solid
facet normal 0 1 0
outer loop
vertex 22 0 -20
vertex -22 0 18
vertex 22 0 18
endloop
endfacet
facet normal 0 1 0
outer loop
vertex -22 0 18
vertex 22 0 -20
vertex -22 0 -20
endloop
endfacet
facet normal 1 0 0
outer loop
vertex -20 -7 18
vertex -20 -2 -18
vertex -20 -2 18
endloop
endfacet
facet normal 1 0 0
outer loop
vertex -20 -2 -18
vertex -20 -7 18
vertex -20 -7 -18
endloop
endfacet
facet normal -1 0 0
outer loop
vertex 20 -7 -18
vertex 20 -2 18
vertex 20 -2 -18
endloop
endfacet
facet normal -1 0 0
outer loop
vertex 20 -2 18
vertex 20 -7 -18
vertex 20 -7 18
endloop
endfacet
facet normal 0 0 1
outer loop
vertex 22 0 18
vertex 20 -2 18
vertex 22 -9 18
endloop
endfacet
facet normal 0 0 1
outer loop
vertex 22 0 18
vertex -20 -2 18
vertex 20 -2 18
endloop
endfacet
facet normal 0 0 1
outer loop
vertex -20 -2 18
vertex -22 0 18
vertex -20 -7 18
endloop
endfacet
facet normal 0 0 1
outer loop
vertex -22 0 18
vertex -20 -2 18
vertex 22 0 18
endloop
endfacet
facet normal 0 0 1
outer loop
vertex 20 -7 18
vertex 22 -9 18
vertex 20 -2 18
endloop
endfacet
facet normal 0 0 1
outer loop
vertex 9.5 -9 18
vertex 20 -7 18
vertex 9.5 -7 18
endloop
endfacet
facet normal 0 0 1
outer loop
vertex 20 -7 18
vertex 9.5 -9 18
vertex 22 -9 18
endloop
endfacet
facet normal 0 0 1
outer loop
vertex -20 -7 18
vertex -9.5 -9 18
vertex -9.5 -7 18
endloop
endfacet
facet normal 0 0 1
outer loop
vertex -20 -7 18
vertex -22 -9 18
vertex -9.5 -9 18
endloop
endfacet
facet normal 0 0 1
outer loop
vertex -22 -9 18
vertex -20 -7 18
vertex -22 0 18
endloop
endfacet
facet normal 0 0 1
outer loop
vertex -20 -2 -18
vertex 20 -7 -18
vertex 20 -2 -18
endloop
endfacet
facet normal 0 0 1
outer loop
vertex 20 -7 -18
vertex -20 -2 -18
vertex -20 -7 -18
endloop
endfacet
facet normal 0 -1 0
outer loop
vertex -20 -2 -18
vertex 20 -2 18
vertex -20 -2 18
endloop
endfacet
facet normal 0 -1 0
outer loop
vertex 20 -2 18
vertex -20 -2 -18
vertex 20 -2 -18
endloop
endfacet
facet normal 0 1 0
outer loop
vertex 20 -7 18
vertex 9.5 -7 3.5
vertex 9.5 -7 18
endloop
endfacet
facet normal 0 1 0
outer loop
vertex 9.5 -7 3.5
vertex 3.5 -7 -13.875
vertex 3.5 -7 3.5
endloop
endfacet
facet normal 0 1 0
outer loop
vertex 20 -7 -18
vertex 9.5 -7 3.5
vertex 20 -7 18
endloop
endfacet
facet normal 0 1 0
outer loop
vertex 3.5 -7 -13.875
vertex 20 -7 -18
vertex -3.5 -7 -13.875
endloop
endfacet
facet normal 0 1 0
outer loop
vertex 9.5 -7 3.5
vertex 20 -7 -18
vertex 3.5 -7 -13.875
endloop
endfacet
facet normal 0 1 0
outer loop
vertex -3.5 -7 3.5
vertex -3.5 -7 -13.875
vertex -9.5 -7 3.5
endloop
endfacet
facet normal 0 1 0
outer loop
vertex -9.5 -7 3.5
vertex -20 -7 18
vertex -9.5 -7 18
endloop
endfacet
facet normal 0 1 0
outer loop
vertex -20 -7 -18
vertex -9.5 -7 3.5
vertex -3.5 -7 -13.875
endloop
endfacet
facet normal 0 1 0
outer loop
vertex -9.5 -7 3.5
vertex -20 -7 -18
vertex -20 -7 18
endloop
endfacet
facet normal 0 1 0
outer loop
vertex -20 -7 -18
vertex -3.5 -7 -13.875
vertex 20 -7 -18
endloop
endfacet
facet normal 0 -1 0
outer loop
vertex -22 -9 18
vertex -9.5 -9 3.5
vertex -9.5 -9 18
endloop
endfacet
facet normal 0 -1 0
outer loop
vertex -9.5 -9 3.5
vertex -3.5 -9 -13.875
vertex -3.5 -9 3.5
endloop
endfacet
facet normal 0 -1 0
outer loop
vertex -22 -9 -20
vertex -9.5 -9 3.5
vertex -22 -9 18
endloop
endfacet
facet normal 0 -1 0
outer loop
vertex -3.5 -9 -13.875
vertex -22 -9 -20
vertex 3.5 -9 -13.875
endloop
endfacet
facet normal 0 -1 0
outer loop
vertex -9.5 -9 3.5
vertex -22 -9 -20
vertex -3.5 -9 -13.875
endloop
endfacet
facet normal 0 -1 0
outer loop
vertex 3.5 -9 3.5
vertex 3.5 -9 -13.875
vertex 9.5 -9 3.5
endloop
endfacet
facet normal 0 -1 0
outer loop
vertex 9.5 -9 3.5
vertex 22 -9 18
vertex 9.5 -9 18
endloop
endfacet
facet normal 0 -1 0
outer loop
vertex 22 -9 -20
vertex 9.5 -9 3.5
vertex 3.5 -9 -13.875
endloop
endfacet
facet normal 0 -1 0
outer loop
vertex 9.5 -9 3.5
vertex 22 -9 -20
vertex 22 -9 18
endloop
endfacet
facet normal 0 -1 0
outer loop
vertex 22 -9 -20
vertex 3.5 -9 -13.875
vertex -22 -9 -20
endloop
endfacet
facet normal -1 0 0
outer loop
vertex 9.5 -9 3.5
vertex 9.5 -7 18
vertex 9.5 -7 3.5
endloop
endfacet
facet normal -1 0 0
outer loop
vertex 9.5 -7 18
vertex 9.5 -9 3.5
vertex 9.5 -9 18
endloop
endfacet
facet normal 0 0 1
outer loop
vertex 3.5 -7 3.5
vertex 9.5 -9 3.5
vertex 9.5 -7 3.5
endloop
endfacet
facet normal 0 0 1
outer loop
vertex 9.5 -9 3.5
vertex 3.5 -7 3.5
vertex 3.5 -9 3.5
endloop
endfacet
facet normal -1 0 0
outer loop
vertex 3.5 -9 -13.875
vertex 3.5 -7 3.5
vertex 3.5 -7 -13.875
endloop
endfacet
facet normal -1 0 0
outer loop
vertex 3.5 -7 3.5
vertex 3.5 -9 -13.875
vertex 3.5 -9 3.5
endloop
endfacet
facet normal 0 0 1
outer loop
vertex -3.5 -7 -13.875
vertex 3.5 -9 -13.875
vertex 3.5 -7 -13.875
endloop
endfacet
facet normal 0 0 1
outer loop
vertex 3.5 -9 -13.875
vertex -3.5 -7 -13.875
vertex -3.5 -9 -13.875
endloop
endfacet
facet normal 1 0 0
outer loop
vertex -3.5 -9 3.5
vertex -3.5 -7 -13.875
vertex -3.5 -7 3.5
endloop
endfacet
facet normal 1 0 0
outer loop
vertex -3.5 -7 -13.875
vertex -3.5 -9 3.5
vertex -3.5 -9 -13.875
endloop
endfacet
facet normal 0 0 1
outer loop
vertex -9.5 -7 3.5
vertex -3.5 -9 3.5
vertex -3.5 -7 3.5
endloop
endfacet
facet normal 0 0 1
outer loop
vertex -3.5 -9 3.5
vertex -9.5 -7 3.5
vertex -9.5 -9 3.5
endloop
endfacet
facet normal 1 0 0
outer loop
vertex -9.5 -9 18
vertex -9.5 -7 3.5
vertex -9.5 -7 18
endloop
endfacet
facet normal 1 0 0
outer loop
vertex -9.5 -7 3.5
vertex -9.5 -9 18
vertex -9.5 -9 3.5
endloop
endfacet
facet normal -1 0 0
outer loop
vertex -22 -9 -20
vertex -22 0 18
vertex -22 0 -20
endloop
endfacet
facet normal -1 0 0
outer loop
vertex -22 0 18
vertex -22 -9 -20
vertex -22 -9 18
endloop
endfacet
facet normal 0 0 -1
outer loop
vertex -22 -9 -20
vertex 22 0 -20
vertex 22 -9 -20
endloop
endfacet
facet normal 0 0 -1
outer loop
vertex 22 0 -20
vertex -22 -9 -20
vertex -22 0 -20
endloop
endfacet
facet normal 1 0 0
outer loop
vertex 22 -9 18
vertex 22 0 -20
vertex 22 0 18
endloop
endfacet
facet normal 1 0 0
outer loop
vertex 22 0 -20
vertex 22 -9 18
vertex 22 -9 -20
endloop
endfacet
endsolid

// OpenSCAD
rotate([-90,0,180]) {
    // clamp pad surface
    linear_extrude(2)square([40,36], true);


    // clamp pad back w/cutouts
    translate([0,0,7])
    linear_extrude(2)
    difference(){
        square([40,36], true);
            translate([0,5,0])
            square([7,17.75], true);
            translate([0,-11,0])
            square([19,15], true);
    }

    // walls
    linear_extrude(9){
        translate([-21,0,0])
            square([2,36], true);
        translate([21,0,0])
            square([2,36], true);
        translate([0,19,0])
            square([44,2], true);
    }
}
